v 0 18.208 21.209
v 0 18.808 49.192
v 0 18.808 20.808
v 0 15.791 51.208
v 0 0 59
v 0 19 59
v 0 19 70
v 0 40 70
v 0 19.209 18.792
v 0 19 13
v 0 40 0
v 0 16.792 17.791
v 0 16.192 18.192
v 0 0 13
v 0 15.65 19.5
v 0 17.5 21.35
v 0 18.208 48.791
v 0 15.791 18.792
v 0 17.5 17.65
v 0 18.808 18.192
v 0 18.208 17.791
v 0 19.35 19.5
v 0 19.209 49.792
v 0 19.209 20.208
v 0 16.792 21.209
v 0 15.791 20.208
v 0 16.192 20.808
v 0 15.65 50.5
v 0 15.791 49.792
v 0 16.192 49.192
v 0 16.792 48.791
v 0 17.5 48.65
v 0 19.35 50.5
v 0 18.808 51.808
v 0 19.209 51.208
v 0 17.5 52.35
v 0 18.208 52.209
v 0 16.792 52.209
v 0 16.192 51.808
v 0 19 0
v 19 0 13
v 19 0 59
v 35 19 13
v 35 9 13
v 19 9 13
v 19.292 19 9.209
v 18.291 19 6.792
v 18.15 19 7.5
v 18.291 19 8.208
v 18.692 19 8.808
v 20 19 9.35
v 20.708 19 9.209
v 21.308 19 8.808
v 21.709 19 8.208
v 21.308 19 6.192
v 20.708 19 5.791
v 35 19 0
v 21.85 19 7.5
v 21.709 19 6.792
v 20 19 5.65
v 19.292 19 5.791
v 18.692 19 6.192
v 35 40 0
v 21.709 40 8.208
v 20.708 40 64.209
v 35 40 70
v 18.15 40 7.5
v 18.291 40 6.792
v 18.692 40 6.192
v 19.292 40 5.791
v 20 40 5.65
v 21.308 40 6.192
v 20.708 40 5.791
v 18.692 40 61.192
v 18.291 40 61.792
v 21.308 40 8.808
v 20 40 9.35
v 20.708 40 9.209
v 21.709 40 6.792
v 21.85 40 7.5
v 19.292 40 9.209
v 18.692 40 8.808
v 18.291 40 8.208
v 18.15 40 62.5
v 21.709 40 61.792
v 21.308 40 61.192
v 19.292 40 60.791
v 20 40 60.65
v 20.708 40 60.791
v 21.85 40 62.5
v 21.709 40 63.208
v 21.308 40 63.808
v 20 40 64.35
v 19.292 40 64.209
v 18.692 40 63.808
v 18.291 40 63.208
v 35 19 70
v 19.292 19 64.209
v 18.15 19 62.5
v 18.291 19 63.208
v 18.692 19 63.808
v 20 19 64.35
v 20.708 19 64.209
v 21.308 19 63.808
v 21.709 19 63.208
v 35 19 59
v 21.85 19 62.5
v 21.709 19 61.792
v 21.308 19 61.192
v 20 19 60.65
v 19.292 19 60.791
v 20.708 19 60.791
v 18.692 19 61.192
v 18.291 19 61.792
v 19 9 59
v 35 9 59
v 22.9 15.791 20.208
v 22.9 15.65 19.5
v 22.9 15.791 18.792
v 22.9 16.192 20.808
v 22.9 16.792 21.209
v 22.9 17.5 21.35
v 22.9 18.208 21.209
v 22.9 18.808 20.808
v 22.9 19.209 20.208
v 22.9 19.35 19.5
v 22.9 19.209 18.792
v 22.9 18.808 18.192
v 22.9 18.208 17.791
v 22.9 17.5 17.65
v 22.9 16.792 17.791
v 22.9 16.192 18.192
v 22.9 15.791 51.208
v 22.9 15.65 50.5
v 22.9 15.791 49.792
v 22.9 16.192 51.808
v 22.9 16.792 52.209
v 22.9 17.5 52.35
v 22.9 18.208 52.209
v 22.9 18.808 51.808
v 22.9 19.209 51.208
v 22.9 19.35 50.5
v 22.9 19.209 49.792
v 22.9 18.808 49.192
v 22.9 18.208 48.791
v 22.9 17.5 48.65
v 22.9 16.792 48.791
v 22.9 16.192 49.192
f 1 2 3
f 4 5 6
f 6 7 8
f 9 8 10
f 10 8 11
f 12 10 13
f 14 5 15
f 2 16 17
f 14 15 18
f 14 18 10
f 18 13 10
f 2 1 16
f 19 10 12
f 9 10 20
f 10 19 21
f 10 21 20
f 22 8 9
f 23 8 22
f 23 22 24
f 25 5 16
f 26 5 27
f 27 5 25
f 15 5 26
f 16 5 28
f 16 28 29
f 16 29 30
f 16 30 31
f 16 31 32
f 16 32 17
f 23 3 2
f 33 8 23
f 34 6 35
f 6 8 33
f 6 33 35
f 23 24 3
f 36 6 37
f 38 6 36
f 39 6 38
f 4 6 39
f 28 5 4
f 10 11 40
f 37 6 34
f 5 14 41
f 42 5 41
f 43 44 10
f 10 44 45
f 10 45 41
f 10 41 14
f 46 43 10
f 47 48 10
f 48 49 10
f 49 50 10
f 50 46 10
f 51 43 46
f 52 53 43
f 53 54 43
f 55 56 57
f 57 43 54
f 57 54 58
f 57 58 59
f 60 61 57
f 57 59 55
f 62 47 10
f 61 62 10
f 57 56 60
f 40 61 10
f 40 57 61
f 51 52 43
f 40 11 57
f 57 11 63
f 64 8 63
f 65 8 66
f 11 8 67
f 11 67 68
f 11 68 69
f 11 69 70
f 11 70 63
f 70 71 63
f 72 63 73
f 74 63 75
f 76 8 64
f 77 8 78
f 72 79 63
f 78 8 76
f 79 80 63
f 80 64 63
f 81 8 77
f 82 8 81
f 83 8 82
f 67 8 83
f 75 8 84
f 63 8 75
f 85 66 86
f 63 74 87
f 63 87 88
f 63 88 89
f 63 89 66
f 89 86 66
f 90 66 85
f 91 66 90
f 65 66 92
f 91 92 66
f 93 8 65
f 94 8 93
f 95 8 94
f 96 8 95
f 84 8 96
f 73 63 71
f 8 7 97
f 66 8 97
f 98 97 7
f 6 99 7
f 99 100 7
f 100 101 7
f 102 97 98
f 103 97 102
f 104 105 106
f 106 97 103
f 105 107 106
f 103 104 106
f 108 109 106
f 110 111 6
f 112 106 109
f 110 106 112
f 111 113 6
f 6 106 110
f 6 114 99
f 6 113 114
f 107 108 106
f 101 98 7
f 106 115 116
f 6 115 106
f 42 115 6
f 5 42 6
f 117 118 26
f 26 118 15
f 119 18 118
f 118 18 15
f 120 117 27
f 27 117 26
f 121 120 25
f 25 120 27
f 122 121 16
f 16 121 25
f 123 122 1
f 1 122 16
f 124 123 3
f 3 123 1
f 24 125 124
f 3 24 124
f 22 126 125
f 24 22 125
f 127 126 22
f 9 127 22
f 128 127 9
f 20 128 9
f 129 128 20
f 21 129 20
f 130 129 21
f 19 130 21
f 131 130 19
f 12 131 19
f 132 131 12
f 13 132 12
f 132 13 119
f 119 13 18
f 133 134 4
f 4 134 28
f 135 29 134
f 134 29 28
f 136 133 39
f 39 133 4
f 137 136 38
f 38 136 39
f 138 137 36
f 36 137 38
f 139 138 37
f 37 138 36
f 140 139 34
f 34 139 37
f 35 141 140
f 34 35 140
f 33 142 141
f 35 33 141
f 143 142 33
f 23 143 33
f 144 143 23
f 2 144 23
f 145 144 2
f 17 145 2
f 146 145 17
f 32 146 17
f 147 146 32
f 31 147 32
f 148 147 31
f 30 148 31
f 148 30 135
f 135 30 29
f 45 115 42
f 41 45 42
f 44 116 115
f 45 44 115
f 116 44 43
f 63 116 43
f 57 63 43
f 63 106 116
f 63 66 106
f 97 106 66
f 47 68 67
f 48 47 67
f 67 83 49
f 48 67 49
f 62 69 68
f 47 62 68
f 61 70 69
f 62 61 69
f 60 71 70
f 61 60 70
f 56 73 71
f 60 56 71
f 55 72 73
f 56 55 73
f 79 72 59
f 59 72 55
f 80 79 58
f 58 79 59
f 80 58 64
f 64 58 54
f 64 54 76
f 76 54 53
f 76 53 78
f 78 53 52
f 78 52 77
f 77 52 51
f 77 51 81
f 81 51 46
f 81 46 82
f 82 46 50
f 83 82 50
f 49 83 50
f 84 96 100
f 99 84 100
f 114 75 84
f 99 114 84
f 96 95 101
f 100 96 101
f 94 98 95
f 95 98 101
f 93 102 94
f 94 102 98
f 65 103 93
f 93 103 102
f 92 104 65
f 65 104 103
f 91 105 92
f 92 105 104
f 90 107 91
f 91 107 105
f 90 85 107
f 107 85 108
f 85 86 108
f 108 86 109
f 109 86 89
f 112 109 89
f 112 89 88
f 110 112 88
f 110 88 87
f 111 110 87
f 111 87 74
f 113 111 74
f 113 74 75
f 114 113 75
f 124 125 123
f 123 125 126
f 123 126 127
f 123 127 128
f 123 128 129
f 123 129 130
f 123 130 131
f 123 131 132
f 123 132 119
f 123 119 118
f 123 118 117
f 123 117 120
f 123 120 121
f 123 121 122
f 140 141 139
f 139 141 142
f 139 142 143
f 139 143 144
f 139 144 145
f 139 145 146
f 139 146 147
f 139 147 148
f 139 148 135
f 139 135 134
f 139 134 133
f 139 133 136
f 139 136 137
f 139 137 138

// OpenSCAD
difference() {
	
	cube( [ 35,40,70 ] );
	
	translate( [-0.1,35/2,(70-31)/2] ) {
		rotate( 90, [0,1,0] )
		cylinder( r=1.85, h=23, $fn=16 );
		
		translate( [ 0, 0, 31 ] )
		rotate( 90, [0,1,0] )
		cylinder( r=1.85, h=23, $fn=16 );
	}

	translate( [20,-0.1+20,(70-55)/2] ) {
		translate( [0,23,0] )
		rotate( 90, [1,0,0] )
		cylinder( r=1.85, h=45, $fn=16 );

		translate( [0,23,55] )
		rotate( 90, [1,0,0] )
		cylinder( r=1.85, h=45, $fn=16 );
	}

	translate( [-1,-1,-1] )
	cube( [40,20,14] );

	translate( [-1,-1,-1+60] )
	cube( [40,20,14] );

	translate( [-1+20,-1,0] )
	cube( [20,10,100] );

}
